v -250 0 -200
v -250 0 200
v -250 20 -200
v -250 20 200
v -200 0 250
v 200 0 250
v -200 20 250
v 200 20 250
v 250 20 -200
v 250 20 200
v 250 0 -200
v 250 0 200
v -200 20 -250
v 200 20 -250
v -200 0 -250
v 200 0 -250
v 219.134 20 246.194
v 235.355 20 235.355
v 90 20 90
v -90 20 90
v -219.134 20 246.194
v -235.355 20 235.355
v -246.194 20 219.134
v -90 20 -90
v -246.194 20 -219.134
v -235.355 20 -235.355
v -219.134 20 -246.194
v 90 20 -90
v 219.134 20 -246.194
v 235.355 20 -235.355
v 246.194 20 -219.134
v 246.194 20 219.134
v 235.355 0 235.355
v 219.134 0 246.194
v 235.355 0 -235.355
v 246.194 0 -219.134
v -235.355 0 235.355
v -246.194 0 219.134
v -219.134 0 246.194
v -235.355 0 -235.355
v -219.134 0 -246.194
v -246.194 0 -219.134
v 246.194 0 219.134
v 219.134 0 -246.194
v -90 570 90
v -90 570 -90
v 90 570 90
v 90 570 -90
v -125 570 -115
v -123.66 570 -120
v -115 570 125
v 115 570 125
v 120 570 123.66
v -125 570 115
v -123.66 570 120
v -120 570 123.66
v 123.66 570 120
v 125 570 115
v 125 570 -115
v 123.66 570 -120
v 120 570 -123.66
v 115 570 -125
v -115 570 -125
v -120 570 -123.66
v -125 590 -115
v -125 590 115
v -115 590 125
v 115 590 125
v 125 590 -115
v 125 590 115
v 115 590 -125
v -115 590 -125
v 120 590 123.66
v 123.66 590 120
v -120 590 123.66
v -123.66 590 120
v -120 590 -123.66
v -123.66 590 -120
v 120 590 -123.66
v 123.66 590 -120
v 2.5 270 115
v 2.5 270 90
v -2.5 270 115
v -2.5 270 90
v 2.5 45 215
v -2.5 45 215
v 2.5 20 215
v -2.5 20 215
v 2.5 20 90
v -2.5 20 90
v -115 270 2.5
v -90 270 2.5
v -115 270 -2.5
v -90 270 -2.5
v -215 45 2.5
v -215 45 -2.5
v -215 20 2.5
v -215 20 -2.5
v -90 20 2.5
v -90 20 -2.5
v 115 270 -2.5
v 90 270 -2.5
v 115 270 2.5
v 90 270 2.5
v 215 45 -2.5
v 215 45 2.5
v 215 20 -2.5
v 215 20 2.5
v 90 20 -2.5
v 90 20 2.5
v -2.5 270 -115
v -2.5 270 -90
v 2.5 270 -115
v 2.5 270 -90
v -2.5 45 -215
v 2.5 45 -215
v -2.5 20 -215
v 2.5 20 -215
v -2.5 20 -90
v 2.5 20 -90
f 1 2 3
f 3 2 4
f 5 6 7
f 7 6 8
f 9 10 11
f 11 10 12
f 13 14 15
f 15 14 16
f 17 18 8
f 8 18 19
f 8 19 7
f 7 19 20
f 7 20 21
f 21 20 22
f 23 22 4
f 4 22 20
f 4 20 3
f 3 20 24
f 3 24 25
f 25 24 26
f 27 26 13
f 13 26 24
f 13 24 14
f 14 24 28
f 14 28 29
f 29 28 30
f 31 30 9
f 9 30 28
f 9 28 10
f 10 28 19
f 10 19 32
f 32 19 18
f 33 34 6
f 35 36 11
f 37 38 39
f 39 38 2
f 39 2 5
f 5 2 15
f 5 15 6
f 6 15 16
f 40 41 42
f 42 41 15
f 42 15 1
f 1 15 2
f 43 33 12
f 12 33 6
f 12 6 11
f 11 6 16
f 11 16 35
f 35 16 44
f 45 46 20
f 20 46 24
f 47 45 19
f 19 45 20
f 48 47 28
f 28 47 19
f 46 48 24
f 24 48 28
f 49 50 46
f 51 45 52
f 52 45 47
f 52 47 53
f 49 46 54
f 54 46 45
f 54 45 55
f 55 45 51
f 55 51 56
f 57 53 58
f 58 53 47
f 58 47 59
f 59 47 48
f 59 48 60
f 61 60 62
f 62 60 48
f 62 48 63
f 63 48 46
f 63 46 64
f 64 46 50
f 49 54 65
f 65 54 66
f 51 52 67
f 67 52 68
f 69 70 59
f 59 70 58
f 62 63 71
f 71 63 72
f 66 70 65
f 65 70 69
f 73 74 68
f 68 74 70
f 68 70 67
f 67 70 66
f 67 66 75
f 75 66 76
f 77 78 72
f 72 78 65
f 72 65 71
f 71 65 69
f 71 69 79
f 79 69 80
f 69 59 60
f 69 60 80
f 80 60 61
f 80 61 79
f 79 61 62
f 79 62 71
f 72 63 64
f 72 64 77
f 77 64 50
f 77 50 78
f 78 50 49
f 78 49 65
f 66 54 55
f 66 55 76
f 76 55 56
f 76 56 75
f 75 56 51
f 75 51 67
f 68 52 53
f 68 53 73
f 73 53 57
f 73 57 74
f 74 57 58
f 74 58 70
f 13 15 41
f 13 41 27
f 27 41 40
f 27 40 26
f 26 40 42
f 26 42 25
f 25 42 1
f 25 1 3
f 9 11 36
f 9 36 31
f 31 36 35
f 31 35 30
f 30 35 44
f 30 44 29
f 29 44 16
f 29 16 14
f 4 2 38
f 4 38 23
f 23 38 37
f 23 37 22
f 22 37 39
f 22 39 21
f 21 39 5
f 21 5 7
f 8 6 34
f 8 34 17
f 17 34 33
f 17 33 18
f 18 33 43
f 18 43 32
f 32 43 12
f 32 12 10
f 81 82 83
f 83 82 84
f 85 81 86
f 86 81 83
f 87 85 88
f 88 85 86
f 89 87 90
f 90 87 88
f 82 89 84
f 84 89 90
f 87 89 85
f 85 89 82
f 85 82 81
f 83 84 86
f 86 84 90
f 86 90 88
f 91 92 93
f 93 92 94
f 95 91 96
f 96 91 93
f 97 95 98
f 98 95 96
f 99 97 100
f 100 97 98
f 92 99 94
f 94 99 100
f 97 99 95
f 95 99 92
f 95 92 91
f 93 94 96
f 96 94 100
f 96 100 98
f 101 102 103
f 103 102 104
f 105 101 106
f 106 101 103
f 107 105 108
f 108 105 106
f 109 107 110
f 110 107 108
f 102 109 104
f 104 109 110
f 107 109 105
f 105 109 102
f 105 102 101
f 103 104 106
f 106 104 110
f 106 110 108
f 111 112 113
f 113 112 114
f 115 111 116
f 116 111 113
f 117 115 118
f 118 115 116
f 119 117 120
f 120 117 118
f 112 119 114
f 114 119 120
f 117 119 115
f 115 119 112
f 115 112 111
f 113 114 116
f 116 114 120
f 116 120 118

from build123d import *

# Parameters (mm, degrees)
SKETCH1_W           = 500
SKETCH1_H           = 500
BOSS_EXTRUDE1_DEPTH = 20
SKETCH2_W           = 180
SKETCH2_H           = 180
BOSS_EXTRUDE2_DEPTH = 550
SKETCH3_W           = 250
SKETCH3_H           = 250
BOSS_EXTRUDE3_DEPTH = 20
GUSSET1_THICKNESS   = 5
GUSSET2_THICKNESS   = 5
GUSSET3_THICKNESS   = 5
GUSSET4_THICKNESS   = 5
FILLET1_R           = 10
FILLET2_R           = 50


with BuildPart() as part:
    # Sketch1 → Boss-Extrude1 (new body)
    with BuildSketch(Plane(origin=(0, 0, 0), x_dir=(1, 0, 0), z_dir=(0, 1, 0))):
        Rectangle(SKETCH1_W, SKETCH1_H)
    extrude(amount=BOSS_EXTRUDE1_DEPTH)

    # Sketch2 → Boss-Extrude2 (add)
    with BuildSketch(Plane(origin=(0, 20, 0), x_dir=(1, 0, 0), z_dir=(0, 1, 0))):
        Rectangle(SKETCH2_W, SKETCH2_H)
    extrude(amount=BOSS_EXTRUDE2_DEPTH)

    # Sketch3 → Boss-Extrude3 (add)
    with BuildSketch(Plane(origin=(0, 570, 0), x_dir=(1, 0, 0), z_dir=(0, 1, 0))):
        Rectangle(SKETCH3_W, SKETCH3_H)
    extrude(amount=BOSS_EXTRUDE3_DEPTH)

    # Fillet1
    fillet1_edges = [part.edges().sort_by_distance(p)[0] for p in [
        (-125, 580, -125),
        (-125, 580, 125),
        (125, 580, 125),
        (125, 580, -125),
    ]]
    fillet(fillet1_edges, radius=FILLET1_R)

    # Fillet2
    fillet2_edges = [part.edges().sort_by_distance(p)[0] for p in [
        (-250, 10, -250),
        (250, 10, -250),
        (250, 10, 250),
        (-250, 10, 250),
    ]]
    fillet(fillet2_edges, radius=FILLET2_R)


with BuildPart() as body_2:
    # Gusset1: a gusset: a plate 5.0 thick in the corner of two members, its outline drawn in place
    gusset1_outline = Wire([Line((2.5, 20, 90), (2.5, 270, 90)), Line((2.5, 270, 90), (2.5, 270, 115)), Line((2.5, 270, 115), (2.5, 45, 215)), Line((2.5, 45, 215), (2.5, 20, 215)), Line((2.5, 20, 215), (2.5, 20, 90))])
    add(extrude(Face(gusset1_outline), amount=GUSSET1_THICKNESS, dir=(-1, 0, 0)))


with BuildPart() as body_3:
    # Gusset2: a gusset: a plate 5.0 thick in the corner of two members, its outline drawn in place
    gusset2_outline = Wire([Line((-90, 20, 2.5), (-90, 270, 2.5)), Line((-90, 270, 2.5), (-115, 270, 2.5)), Line((-115, 270, 2.5), (-215, 45, 2.5)), Line((-215, 45, 2.5), (-215, 20, 2.5)), Line((-215, 20, 2.5), (-90, 20, 2.5))])
    add(extrude(Face(gusset2_outline), amount=GUSSET2_THICKNESS, dir=(0, 0, -1)))


with BuildPart() as body_4:
    # Gusset3: a gusset: a plate 5.0 thick in the corner of two members, its outline drawn in place
    gusset3_outline = Wire([Line((90, 20, -2.5), (90, 270, -2.5)), Line((90, 270, -2.5), (115, 270, -2.5)), Line((115, 270, -2.5), (215, 45, -2.5)), Line((215, 45, -2.5), (215, 20, -2.5)), Line((215, 20, -2.5), (90, 20, -2.5))])
    add(extrude(Face(gusset3_outline), amount=GUSSET3_THICKNESS, dir=(0, 0, 1)))


with BuildPart() as body_5:
    # Gusset4: a gusset: a plate 5.0 thick in the corner of two members, its outline drawn in place
    gusset4_outline = Wire([Line((-2.5, 20, -90), (-2.5, 270, -90)), Line((-2.5, 270, -90), (-2.5, 270, -115)), Line((-2.5, 270, -115), (-2.5, 45, -215)), Line((-2.5, 45, -215), (-2.5, 20, -215)), Line((-2.5, 20, -215), (-2.5, 20, -90))])
    add(extrude(Face(gusset4_outline), amount=GUSSET4_THICKNESS, dir=(1, 0, 0)))


solid = Compound([part.part, body_2.part, body_3.part, body_4.part, body_5.part])
